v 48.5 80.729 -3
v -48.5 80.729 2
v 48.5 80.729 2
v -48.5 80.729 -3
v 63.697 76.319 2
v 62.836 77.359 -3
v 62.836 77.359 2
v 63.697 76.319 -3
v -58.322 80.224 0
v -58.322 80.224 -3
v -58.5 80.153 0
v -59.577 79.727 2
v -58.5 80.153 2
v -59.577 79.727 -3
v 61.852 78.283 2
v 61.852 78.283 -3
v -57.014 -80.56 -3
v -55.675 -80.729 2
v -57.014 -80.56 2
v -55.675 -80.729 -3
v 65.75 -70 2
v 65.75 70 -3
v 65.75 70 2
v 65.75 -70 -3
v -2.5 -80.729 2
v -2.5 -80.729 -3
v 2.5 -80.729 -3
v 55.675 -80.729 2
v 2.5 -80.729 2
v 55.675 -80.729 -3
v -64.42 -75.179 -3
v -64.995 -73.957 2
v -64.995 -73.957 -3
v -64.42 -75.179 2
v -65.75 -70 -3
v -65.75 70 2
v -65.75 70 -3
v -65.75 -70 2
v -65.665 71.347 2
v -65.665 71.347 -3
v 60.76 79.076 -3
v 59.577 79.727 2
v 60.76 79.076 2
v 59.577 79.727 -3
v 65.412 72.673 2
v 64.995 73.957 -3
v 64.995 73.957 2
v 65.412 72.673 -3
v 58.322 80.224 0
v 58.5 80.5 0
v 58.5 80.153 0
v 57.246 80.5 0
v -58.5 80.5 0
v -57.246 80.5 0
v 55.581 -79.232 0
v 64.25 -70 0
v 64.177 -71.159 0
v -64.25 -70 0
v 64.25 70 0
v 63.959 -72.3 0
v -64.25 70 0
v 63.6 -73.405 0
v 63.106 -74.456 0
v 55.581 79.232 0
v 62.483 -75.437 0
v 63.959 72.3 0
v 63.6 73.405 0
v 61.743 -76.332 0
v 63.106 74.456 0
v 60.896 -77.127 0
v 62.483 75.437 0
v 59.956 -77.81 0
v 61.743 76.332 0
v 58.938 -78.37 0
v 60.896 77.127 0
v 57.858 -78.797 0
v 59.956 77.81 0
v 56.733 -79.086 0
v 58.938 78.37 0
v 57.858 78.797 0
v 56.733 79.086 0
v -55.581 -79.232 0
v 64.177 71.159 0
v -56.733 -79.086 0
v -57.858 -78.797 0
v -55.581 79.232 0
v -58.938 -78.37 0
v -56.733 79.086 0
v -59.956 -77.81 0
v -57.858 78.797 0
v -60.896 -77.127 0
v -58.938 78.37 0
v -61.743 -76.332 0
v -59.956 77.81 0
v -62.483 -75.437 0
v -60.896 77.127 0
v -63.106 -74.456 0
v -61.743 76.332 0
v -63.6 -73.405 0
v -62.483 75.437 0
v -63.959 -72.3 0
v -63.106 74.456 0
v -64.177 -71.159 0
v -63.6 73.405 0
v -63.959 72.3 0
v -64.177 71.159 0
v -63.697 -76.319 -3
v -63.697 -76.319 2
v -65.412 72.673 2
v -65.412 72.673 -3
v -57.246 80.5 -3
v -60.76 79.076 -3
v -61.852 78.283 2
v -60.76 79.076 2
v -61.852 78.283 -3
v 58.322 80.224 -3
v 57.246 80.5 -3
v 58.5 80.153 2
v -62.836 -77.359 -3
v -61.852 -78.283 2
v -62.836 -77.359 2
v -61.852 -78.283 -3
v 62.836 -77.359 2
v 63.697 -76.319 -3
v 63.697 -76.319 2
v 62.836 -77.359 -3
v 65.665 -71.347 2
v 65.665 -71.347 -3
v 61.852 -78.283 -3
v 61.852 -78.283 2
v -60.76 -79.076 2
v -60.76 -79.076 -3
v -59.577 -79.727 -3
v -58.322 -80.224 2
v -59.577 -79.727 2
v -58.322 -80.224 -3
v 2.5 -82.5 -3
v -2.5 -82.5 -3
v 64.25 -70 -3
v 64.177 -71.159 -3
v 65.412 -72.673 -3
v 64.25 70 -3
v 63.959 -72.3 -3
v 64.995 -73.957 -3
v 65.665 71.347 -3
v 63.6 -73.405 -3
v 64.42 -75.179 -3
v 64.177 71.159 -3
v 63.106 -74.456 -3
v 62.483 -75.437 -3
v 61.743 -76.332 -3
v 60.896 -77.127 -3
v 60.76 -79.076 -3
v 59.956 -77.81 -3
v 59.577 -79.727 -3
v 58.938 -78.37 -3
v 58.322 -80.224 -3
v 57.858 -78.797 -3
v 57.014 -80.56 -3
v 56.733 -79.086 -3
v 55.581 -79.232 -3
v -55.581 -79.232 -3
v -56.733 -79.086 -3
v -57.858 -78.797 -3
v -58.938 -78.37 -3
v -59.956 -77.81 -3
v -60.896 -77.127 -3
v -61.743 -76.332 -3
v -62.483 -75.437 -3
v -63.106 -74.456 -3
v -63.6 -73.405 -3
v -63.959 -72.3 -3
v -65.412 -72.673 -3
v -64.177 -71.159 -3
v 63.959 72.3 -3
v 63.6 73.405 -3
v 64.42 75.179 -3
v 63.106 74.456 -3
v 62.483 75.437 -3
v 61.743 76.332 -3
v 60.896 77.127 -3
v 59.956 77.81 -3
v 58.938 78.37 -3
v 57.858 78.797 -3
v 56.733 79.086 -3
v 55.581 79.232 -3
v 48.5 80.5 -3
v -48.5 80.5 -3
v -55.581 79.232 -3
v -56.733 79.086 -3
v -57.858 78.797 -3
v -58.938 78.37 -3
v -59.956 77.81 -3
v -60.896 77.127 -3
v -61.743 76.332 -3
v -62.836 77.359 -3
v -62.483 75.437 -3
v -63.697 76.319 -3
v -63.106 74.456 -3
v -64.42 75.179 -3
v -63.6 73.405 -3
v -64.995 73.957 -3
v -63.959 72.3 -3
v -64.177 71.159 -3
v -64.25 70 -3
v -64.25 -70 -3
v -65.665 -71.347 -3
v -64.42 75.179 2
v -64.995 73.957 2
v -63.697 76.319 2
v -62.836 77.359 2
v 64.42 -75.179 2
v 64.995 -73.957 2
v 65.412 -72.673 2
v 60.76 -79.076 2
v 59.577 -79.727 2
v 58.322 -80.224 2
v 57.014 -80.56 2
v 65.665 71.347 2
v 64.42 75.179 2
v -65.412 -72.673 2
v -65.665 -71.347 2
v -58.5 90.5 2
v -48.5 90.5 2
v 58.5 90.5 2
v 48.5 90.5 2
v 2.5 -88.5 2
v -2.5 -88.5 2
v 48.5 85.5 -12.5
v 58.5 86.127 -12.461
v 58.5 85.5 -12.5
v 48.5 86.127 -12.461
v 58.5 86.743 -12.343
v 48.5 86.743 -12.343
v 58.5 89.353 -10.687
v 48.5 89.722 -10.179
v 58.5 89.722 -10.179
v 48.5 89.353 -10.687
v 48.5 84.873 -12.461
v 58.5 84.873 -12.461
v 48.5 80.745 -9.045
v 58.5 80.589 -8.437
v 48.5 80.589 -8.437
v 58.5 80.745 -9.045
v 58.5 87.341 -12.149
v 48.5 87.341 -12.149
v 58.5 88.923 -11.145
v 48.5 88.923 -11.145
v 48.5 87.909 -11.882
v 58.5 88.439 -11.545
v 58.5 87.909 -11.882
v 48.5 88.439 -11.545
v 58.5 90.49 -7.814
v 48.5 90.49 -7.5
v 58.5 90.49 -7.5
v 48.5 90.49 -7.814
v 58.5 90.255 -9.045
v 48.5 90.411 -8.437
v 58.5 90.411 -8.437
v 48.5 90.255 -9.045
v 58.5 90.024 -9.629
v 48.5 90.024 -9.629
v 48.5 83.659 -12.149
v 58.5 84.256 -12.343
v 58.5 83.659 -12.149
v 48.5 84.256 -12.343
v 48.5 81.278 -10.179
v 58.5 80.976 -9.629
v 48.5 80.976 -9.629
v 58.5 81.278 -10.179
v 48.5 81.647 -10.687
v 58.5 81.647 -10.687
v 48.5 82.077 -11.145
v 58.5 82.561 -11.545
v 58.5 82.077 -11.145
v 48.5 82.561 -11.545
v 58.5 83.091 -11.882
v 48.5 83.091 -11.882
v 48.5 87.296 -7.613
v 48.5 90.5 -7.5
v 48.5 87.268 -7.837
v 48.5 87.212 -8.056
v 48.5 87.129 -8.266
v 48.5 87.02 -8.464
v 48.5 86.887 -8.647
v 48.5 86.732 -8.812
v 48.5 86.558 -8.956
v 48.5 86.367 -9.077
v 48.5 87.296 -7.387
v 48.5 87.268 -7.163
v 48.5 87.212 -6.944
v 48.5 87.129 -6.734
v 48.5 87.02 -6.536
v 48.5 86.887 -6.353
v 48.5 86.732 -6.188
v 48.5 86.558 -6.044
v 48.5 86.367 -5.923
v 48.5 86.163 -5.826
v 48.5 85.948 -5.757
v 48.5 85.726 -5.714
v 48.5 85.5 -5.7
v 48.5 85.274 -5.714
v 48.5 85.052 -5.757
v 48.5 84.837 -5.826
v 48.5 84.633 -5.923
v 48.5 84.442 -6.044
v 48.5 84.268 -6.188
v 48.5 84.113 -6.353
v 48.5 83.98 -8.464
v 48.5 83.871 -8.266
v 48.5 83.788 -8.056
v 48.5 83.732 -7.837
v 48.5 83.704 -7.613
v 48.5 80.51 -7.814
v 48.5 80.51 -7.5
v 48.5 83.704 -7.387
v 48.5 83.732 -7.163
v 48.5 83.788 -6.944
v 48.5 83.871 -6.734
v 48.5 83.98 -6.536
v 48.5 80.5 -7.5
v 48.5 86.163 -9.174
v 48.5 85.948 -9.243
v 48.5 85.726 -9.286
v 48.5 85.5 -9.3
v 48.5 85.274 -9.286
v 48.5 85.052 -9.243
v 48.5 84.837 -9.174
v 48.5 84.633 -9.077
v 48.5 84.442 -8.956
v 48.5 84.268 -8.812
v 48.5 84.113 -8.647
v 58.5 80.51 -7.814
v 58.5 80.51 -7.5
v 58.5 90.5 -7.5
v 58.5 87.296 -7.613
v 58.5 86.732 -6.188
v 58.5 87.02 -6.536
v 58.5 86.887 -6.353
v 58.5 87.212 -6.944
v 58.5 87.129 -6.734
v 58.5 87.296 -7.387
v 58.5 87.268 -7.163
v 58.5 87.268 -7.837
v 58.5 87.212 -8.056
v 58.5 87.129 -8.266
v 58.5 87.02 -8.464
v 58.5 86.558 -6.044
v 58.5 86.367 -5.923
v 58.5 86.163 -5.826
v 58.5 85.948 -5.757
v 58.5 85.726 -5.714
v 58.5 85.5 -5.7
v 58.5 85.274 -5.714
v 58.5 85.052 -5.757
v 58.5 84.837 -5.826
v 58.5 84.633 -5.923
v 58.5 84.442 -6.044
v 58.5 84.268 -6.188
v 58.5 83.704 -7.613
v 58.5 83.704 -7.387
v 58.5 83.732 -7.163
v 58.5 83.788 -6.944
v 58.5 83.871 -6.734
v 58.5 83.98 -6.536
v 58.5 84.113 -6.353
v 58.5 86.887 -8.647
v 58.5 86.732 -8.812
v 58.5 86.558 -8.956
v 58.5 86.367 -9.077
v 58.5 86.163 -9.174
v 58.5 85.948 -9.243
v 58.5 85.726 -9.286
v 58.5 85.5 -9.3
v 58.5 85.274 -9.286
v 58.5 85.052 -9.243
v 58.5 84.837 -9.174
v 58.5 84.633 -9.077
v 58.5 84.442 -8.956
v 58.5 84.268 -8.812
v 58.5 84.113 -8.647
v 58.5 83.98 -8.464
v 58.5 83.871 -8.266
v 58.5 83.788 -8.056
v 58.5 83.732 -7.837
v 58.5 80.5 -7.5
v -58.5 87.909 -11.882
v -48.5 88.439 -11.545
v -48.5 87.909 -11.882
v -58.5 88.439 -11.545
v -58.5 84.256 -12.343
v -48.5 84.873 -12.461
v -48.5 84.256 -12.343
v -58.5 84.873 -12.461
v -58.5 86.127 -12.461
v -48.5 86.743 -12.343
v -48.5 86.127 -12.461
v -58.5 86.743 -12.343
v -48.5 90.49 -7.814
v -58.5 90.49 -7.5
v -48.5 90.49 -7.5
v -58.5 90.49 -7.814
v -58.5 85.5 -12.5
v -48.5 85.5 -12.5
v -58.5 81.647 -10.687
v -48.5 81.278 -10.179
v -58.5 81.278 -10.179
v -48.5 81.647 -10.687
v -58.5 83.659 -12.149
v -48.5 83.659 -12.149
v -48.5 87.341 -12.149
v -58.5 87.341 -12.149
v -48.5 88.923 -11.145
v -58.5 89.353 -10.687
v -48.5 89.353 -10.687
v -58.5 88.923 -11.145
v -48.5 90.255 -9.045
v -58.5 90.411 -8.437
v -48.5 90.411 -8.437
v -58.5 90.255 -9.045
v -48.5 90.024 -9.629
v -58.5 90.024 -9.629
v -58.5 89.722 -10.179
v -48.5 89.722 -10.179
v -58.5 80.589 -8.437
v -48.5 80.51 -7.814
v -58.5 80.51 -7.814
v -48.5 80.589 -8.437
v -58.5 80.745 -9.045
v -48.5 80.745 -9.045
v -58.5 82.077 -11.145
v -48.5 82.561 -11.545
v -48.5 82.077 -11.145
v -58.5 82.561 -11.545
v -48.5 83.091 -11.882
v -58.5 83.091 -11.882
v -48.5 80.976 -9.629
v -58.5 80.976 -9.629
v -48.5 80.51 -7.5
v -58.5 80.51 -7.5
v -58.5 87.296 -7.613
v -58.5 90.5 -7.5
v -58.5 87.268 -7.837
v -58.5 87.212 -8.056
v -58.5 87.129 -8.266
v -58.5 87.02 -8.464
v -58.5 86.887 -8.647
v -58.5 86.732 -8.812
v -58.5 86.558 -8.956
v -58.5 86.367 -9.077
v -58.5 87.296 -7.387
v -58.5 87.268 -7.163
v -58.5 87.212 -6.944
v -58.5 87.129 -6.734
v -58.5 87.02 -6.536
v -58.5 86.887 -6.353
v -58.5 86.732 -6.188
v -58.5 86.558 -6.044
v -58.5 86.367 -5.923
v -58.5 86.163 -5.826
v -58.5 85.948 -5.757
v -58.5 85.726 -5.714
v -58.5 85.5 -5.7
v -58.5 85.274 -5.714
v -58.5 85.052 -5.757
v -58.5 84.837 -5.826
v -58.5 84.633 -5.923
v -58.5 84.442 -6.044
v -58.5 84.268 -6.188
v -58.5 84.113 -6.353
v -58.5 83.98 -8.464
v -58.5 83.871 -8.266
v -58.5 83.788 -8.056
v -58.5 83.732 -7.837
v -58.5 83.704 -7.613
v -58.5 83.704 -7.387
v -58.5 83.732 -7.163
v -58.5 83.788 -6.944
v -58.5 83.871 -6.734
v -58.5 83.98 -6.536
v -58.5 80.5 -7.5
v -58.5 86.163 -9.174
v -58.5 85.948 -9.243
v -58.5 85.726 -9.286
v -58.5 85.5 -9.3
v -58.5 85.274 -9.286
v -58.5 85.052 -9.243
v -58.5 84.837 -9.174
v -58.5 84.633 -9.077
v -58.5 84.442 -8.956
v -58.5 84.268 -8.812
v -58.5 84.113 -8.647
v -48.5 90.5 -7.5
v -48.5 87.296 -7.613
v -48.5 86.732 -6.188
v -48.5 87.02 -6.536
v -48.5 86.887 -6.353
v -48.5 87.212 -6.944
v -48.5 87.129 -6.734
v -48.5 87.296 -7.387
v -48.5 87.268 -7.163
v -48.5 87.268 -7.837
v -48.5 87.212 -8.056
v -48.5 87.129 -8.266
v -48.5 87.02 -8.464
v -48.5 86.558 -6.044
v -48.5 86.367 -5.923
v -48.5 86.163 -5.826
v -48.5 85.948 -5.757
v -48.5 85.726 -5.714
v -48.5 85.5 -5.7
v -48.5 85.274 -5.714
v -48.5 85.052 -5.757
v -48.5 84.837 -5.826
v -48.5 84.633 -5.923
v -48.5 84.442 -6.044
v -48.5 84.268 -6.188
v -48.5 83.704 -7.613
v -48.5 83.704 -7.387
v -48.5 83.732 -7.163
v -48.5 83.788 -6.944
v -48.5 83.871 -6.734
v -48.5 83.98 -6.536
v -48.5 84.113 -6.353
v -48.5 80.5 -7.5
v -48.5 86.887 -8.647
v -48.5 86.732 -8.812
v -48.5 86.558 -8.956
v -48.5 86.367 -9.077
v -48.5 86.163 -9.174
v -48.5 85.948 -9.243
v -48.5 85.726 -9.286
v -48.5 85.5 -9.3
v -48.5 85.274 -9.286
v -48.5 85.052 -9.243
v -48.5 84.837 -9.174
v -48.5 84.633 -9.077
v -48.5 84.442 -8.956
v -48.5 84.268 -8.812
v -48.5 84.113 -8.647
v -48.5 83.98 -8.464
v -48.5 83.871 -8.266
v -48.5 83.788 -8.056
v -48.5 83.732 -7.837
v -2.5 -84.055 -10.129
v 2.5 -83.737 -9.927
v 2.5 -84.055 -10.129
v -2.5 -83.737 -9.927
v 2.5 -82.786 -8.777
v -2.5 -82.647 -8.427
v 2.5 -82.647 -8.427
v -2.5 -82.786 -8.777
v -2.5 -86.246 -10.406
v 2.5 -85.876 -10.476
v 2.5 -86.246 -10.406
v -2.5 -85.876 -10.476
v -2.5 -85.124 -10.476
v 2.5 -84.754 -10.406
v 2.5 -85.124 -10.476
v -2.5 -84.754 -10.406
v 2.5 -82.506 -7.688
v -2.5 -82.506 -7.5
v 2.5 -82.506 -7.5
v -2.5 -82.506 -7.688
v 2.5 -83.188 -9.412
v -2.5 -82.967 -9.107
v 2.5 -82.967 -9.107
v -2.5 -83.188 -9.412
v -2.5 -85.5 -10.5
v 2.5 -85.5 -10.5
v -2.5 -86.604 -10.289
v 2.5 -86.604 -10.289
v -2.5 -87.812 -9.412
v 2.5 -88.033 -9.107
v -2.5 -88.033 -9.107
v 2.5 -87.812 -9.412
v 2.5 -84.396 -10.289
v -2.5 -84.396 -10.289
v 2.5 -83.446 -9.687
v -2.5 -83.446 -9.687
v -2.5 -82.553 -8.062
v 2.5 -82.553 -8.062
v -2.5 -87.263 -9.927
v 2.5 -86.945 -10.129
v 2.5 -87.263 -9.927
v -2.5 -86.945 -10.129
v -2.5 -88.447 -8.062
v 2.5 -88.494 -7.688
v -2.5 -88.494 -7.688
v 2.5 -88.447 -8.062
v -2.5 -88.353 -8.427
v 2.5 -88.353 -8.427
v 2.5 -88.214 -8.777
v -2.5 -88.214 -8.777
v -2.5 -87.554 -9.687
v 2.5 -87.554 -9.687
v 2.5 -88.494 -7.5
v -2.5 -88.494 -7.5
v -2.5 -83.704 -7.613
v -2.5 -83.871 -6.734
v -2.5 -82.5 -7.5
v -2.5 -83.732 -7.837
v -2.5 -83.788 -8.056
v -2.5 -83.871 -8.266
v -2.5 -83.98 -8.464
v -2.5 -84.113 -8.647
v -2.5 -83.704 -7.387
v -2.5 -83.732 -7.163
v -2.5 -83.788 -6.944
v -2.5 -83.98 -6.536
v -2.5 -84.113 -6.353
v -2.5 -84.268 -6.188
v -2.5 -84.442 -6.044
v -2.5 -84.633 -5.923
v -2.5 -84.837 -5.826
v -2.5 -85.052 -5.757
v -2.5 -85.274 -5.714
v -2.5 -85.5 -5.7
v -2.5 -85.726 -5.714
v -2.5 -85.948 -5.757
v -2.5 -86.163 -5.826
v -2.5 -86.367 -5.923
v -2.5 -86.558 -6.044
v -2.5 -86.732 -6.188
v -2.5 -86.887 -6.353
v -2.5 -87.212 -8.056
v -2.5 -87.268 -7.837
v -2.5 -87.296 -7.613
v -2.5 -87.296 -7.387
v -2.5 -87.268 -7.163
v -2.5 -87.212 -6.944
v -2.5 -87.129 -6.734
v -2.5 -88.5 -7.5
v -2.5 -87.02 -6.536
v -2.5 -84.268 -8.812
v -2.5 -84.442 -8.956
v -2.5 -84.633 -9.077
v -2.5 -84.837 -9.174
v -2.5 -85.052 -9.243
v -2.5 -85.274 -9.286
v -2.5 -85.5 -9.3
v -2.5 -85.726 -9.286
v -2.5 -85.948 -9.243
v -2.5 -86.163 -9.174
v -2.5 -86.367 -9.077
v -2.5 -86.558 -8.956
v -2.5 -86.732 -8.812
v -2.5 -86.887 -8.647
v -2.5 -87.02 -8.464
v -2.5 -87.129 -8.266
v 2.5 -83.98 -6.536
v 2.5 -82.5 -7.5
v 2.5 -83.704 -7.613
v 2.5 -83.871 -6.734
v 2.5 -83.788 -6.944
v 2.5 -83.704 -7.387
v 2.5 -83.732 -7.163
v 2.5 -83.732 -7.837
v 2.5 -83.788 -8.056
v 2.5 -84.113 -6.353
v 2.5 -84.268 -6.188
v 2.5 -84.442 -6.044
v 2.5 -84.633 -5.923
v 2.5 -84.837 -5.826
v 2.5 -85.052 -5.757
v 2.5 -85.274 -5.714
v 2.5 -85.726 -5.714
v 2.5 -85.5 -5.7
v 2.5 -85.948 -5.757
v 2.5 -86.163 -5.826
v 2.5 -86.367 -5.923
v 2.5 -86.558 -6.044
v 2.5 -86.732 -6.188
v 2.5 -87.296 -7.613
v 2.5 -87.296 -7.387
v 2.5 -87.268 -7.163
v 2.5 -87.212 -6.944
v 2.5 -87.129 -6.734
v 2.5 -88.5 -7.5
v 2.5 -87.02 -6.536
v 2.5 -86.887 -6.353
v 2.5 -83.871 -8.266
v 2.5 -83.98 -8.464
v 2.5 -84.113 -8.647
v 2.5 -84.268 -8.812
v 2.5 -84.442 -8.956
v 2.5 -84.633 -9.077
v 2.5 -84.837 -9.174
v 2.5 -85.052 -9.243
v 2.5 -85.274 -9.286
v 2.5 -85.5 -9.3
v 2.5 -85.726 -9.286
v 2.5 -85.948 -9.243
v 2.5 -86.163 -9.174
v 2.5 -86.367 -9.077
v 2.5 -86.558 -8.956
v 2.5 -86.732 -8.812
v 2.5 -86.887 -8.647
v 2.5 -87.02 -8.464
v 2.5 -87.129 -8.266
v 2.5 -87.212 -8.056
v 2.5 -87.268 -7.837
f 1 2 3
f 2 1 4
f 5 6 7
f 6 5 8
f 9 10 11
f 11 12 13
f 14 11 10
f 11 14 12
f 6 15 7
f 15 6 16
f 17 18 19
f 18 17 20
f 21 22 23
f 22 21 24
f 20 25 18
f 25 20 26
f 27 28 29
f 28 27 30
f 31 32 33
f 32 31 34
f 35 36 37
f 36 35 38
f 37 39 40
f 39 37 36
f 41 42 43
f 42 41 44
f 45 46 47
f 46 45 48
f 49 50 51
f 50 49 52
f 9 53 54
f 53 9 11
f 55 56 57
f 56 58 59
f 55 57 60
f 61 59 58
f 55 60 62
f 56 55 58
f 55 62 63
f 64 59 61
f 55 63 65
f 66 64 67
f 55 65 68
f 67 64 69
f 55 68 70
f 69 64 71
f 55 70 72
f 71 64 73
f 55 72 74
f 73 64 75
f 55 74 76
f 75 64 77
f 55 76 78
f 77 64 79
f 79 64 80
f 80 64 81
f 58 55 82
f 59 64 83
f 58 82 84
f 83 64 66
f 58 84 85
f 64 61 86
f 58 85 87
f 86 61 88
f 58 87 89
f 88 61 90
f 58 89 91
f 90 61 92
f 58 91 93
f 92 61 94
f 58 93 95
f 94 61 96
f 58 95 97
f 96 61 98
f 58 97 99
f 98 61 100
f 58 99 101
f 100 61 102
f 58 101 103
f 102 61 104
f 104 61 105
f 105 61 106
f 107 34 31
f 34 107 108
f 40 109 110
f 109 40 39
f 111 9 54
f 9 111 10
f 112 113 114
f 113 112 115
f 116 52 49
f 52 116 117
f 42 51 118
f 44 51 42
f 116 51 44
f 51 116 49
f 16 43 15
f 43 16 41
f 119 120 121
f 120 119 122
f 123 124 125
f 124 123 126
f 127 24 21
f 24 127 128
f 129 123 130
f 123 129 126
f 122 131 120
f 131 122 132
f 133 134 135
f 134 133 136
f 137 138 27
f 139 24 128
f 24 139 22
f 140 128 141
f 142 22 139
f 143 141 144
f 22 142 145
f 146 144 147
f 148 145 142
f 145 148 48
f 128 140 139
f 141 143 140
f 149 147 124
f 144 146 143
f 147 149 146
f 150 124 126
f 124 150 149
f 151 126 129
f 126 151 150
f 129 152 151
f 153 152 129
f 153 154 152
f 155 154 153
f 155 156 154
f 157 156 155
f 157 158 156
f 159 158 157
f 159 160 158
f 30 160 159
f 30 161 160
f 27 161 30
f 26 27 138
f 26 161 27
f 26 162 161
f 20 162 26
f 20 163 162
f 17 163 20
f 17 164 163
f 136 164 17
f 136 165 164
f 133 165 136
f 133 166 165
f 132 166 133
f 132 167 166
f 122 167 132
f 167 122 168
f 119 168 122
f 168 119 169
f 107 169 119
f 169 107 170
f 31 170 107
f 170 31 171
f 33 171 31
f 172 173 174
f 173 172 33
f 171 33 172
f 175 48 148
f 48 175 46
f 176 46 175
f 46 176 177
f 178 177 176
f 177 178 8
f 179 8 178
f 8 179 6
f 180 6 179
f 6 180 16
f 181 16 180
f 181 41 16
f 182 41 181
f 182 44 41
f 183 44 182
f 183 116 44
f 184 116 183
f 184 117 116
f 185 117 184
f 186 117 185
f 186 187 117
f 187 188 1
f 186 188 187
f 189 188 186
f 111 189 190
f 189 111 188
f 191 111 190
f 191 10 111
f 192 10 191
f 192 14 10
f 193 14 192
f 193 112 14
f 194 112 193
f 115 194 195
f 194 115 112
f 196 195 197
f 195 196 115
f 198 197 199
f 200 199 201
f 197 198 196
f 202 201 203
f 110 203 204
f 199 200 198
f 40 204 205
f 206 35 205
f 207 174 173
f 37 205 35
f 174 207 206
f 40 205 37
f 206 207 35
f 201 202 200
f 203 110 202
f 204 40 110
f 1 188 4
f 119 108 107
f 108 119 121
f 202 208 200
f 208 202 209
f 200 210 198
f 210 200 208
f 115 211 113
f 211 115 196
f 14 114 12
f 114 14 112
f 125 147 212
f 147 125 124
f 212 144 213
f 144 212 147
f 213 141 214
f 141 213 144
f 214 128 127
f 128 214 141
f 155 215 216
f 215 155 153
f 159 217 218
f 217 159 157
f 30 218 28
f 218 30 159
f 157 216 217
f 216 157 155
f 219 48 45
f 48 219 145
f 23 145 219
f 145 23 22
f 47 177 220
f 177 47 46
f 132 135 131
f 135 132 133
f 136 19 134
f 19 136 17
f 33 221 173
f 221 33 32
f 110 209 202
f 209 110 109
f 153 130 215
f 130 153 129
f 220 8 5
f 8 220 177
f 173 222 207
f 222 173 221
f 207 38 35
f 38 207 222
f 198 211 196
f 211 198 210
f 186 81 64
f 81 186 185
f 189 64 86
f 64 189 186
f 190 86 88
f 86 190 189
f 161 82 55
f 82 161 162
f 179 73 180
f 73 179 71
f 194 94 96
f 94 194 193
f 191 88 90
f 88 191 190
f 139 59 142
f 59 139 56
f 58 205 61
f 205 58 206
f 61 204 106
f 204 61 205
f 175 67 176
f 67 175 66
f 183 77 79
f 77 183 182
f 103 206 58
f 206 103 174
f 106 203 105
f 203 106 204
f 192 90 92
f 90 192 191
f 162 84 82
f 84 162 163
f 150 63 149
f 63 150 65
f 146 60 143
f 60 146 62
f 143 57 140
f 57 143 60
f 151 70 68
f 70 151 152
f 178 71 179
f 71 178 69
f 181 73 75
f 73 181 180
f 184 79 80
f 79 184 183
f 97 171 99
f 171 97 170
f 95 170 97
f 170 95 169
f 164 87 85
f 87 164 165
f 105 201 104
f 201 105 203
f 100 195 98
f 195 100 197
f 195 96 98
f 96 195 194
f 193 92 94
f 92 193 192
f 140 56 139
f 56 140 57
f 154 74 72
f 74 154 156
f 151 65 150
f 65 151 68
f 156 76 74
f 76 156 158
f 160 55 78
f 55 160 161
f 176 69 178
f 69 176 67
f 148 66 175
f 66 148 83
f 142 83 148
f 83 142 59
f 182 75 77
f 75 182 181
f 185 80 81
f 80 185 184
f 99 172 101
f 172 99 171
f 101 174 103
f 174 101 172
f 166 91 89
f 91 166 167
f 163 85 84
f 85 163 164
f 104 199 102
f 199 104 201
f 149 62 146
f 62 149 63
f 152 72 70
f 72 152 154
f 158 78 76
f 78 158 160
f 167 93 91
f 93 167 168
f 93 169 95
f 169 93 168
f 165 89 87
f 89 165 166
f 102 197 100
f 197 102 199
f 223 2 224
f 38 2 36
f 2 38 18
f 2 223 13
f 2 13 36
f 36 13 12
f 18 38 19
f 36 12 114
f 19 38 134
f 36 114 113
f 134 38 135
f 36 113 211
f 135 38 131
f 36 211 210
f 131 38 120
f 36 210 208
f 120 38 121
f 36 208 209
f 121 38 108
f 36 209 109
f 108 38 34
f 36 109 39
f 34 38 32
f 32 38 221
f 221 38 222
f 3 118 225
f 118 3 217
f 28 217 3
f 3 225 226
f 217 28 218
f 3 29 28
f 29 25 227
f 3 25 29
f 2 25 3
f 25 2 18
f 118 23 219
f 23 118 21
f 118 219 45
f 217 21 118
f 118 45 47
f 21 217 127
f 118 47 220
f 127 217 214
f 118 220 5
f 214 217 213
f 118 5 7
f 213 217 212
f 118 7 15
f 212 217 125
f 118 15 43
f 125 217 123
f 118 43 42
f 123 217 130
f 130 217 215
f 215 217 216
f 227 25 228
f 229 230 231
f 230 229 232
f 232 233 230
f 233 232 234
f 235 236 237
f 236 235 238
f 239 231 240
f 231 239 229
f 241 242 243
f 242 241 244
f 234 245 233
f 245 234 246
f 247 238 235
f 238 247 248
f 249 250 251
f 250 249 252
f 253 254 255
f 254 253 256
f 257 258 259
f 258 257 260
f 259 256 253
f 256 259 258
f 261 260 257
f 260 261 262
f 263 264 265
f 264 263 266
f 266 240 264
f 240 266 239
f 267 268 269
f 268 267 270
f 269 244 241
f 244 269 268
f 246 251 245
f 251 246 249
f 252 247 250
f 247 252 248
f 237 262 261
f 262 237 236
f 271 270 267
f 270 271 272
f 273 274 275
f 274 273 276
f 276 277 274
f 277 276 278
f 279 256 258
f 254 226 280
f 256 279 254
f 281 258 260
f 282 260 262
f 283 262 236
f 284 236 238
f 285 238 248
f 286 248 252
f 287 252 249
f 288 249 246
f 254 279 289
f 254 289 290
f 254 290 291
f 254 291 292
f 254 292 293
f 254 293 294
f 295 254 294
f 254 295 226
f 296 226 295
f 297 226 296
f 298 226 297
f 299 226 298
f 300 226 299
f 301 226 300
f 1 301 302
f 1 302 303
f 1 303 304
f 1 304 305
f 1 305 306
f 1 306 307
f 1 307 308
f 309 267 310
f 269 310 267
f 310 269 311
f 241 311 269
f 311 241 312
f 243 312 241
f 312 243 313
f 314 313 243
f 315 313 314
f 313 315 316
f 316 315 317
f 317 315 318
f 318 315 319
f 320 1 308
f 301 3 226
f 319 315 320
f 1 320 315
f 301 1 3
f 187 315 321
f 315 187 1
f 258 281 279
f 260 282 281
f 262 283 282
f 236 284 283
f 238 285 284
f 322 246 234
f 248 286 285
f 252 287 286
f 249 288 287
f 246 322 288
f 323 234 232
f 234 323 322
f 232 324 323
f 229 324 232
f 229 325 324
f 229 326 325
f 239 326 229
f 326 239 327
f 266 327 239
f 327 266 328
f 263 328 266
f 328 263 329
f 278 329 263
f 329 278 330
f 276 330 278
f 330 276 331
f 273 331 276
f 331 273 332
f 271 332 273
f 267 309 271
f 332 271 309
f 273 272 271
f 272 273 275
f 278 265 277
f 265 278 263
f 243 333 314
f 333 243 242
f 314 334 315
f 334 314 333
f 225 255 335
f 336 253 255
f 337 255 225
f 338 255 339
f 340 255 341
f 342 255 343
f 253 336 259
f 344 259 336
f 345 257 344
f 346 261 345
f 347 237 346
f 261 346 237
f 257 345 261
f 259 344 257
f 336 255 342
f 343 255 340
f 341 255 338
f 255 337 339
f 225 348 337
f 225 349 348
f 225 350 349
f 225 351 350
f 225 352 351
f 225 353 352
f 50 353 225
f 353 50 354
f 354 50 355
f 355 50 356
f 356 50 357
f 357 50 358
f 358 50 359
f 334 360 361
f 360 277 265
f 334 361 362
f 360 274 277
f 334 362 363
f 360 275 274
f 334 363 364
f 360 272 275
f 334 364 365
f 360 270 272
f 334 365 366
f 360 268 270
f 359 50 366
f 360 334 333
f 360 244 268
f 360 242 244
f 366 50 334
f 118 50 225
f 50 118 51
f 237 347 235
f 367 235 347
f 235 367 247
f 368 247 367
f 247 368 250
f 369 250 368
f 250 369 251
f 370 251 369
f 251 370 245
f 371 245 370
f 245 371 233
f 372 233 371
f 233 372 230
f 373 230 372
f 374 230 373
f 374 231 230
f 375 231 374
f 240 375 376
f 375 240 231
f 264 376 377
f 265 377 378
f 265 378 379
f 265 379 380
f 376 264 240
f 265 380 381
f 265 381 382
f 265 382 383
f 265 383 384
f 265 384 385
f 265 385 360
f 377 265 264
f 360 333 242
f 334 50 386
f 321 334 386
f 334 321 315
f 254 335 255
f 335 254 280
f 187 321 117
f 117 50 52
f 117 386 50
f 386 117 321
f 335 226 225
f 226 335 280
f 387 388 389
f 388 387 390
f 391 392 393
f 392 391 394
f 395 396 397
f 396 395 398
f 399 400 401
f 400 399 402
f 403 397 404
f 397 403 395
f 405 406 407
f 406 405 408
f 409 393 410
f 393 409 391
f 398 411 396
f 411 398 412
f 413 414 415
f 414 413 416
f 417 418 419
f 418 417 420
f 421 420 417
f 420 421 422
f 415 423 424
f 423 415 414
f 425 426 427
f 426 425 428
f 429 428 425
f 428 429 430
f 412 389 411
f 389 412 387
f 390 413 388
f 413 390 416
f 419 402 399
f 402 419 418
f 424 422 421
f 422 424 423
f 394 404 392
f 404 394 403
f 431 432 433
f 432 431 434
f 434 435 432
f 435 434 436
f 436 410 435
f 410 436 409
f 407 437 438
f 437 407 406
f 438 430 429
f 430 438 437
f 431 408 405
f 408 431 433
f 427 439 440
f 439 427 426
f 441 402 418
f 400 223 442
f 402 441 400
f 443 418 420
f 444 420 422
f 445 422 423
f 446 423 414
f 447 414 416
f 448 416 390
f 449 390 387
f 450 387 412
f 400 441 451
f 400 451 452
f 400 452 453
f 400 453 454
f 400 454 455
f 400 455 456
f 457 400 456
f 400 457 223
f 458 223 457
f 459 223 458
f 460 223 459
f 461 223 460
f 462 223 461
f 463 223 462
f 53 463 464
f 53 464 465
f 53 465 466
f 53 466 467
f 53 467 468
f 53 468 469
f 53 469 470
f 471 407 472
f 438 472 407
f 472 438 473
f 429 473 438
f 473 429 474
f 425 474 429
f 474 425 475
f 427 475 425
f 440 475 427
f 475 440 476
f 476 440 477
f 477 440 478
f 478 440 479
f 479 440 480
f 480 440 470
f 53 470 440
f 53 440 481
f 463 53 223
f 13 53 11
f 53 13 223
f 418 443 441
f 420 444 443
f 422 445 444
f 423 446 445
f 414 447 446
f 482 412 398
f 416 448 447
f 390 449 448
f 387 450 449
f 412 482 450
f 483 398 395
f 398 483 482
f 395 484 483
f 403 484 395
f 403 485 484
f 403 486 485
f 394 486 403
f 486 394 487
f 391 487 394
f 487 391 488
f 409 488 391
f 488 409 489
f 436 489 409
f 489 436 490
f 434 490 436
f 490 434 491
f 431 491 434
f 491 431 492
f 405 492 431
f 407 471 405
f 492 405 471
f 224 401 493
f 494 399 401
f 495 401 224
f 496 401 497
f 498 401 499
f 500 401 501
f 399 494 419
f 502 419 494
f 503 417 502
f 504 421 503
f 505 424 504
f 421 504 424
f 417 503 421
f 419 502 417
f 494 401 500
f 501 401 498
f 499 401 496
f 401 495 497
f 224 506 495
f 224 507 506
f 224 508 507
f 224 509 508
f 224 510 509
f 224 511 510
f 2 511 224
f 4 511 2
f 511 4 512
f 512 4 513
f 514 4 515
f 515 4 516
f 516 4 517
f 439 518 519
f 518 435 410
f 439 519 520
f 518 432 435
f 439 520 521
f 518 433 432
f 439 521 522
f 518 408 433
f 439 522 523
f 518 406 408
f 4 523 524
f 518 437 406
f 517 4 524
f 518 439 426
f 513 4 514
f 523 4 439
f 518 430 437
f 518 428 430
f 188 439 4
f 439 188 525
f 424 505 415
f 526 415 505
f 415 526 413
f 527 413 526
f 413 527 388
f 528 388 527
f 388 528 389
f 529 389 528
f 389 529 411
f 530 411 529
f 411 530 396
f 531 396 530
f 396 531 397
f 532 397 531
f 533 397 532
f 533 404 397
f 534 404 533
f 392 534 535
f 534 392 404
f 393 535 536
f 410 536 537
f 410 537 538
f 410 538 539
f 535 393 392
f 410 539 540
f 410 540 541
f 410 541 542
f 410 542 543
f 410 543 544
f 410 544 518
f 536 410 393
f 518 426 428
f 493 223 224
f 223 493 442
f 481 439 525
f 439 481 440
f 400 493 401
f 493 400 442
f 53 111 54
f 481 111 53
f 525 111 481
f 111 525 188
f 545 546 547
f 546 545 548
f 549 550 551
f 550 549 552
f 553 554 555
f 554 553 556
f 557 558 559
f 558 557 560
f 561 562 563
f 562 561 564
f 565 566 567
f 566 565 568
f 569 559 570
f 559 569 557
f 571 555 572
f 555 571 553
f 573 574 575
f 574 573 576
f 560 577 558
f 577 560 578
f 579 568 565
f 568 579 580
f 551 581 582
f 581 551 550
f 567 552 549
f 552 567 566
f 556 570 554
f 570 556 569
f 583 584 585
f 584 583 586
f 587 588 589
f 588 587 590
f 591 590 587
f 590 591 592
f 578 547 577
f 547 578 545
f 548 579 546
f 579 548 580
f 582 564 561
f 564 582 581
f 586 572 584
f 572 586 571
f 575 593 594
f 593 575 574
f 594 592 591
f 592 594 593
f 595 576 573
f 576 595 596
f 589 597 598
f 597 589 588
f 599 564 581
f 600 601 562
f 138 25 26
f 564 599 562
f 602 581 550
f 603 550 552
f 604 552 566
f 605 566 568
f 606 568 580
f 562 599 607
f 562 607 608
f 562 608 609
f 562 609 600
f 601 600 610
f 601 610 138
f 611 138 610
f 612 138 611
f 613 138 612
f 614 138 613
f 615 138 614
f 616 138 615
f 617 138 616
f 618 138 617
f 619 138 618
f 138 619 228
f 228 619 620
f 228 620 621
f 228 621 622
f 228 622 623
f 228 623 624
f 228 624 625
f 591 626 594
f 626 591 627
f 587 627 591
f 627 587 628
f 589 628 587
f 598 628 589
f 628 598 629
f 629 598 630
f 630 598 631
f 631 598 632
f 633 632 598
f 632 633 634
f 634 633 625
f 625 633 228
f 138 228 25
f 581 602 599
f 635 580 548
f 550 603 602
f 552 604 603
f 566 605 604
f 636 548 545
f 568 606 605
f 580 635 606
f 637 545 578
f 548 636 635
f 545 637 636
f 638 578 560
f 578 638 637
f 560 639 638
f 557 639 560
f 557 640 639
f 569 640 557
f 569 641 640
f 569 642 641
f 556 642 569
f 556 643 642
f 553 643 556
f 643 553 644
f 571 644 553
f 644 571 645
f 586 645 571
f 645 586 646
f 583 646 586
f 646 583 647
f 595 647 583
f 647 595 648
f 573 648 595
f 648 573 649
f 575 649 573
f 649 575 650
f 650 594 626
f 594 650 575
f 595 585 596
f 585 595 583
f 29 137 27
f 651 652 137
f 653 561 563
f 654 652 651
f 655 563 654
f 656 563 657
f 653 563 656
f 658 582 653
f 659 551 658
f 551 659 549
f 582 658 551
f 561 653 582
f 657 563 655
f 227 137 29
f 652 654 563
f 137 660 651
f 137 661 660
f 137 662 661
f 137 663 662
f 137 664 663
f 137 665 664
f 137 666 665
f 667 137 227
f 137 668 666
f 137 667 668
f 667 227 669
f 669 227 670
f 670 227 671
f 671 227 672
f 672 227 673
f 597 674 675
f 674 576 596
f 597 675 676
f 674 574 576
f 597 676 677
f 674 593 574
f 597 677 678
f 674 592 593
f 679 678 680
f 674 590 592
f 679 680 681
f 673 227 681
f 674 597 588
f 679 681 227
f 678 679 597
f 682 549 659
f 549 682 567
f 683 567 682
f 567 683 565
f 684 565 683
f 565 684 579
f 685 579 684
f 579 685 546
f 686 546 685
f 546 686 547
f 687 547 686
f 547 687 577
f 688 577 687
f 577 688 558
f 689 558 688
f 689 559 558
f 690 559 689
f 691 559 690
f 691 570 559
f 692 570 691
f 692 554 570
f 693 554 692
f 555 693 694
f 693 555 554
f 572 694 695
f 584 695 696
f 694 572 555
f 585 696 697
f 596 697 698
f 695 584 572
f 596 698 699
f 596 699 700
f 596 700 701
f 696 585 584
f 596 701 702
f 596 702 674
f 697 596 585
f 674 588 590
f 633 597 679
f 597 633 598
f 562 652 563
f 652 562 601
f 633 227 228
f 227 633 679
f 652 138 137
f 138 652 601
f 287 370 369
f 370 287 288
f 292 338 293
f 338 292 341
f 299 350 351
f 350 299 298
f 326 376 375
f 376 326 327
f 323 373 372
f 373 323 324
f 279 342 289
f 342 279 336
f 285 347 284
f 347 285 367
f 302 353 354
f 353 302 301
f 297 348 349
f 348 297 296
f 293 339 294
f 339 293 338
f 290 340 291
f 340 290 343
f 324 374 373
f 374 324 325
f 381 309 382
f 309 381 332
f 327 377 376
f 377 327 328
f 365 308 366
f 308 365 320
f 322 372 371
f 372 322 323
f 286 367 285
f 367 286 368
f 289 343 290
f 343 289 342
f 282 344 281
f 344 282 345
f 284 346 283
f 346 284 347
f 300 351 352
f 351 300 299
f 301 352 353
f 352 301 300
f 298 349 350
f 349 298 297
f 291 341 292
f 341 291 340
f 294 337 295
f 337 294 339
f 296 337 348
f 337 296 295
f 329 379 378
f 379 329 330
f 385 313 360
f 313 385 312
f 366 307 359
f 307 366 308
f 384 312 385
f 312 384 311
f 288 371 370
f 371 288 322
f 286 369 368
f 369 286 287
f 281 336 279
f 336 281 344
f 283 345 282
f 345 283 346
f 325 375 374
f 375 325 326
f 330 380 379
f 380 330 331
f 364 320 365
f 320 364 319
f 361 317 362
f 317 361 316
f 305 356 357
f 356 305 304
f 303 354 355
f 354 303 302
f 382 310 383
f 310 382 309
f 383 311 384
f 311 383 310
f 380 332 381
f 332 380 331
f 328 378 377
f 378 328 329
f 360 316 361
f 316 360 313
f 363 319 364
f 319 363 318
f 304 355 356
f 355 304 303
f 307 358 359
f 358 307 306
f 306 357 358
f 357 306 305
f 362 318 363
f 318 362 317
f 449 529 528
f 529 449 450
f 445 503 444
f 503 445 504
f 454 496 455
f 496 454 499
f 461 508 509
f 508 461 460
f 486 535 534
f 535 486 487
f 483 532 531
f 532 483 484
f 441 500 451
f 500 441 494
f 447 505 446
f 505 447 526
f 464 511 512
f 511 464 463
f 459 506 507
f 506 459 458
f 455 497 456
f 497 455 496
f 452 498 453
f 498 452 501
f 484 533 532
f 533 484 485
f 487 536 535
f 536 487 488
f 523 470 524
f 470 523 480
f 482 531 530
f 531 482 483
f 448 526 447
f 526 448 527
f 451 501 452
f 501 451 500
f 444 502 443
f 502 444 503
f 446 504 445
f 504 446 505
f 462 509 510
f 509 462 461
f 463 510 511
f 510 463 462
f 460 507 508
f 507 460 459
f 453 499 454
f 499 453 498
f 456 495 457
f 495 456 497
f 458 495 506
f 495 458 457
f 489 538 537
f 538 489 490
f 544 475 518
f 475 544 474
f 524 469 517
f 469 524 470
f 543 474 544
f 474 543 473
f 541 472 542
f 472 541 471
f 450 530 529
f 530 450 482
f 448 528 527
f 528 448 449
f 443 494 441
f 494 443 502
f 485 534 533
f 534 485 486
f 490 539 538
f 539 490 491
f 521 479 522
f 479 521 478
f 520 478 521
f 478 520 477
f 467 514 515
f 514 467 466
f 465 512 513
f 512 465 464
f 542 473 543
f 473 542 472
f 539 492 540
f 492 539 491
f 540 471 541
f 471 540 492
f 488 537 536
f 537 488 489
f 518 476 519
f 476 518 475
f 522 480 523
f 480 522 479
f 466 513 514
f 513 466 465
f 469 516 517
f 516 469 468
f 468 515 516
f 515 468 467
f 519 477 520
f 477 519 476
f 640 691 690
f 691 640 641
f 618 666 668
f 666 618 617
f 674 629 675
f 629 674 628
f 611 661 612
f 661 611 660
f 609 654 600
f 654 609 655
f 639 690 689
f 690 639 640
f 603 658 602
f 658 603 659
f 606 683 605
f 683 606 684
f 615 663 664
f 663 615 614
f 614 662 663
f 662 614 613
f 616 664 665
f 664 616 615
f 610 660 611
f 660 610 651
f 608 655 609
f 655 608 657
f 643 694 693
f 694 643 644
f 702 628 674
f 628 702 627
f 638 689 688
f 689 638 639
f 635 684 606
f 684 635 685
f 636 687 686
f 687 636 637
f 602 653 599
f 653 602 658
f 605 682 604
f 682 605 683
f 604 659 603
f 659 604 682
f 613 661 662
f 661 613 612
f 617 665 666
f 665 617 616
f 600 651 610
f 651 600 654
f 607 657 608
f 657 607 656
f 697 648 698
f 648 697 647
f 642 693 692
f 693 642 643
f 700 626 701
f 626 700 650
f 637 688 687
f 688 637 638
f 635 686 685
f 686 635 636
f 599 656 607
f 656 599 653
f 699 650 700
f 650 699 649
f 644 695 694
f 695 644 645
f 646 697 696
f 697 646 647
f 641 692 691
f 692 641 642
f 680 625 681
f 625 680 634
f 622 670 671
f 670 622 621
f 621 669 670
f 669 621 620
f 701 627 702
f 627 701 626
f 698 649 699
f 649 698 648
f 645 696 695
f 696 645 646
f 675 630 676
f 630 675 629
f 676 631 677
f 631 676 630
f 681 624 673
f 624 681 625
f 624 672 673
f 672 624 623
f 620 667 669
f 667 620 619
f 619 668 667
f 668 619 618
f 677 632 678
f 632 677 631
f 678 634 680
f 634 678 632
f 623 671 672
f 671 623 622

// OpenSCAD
$fn = 50;


difference() {
	union() {
		translate(v = [0, 0, -3]) {
			rotate(a = [0, 0, 0]) {
				difference() {
					union() {
						hull() {
							translate(v = [-55.0000000000, 70.0000000000, 0]) {
								cylinder(h = 3, r = 10.7500000000);
							}
							translate(v = [55.0000000000, 70.0000000000, 0]) {
								cylinder(h = 3, r = 10.7500000000);
							}
							translate(v = [-55.0000000000, -70.0000000000, 0]) {
								cylinder(h = 3, r = 10.7500000000);
							}
							translate(v = [55.0000000000, -70.0000000000, 0]) {
								cylinder(h = 3, r = 10.7500000000);
							}
						}
					}
					union() {
						hull() {
							translate(v = [-55.0000000000, 70.0000000000, 0]) {
								cylinder(h = 3, r = 9.2500000000);
							}
							translate(v = [55.0000000000, 70.0000000000, 0]) {
								cylinder(h = 3, r = 9.2500000000);
							}
							translate(v = [-55.0000000000, -70.0000000000, 0]) {
								cylinder(h = 3, r = 9.2500000000);
							}
							translate(v = [55.0000000000, -70.0000000000, 0]) {
								cylinder(h = 3, r = 9.2500000000);
							}
						}
					}
				}
			}
		}
		hull() {
			translate(v = [-55.0000000000, 70.0000000000, 0]) {
				cylinder(h = 2, r = 10.7500000000);
			}
			translate(v = [55.0000000000, 70.0000000000, 0]) {
				cylinder(h = 2, r = 10.7500000000);
			}
			translate(v = [-55.0000000000, -70.0000000000, 0]) {
				cylinder(h = 2, r = 10.7500000000);
			}
			translate(v = [55.0000000000, -70.0000000000, 0]) {
				cylinder(h = 2, r = 10.7500000000);
			}
		}
		translate(v = [48.5000000000, 85.5000000000, -7.5000000000]) {
			rotate(a = [0, 90, 0]) {
				cylinder(h = 10, r = 5.0000000000);
			}
		}
		translate(v = [48.5000000000, 80.5000000000, -7.5000000000]) {
			cube(size = [10, 10, 7.5000000000]);
		}
		translate(v = [48.5000000000, 63.0000000000, 0.0000000000]) {
			cube(size = [10, 27.5000000000, 2]);
		}
		translate(v = [-58.5000000000, 85.5000000000, -7.5000000000]) {
			rotate(a = [0, 90, 0]) {
				cylinder(h = 10, r = 5.0000000000);
			}
		}
		translate(v = [-58.5000000000, 80.5000000000, -7.5000000000]) {
			cube(size = [10, 10, 7.5000000000]);
		}
		translate(v = [-58.5000000000, 63.0000000000, 0.0000000000]) {
			cube(size = [10, 27.5000000000, 2]);
		}
		translate(v = [-2.5000000000, -85.5000000000, -7.5000000000]) {
			rotate(a = [0, 90, 0]) {
				cylinder(h = 5, r = 3.0000000000);
			}
		}
		translate(v = [-2.5000000000, -88.5000000000, -7.5000000000]) {
			cube(size = [5, 6, 7.5000000000]);
		}
		translate(v = [-2.5000000000, -88.5000000000, -3.0000000000]) {
			cube(size = [5, 38.2500000000, 5]);
		}
	}
	union() {
		translate(v = [0, 0, -8]) {
			hull() {
				translate(v = [-55.0000000000, 70.0000000000, 0]) {
					cylinder(h = 8, r = 9.2500000000);
				}
				translate(v = [55.0000000000, 70.0000000000, 0]) {
					cylinder(h = 8, r = 9.2500000000);
				}
				translate(v = [-55.0000000000, -70.0000000000, 0]) {
					cylinder(h = 8, r = 9.2500000000);
				}
				translate(v = [55.0000000000, -70.0000000000, 0]) {
					cylinder(h = 8, r = 9.2500000000);
				}
			}
		}
		translate(v = [48.5000000000, 85.5000000000, -7.5000000000]) {
			rotate(a = [0, 90, 0]) {
				cylinder(h = 10, r = 1.8000000000);
			}
		}
		translate(v = [-58.5000000000, 85.5000000000, -7.5000000000]) {
			rotate(a = [0, 90, 0]) {
				cylinder(h = 10, r = 1.8000000000);
			}
		}
		translate(v = [-5.0000000000, -85.5000000000, -7.5000000000]) {
			rotate(a = [0, 90, 0]) {
				cylinder(h = 10, r = 1.8000000000);
			}
		}
	}
}
